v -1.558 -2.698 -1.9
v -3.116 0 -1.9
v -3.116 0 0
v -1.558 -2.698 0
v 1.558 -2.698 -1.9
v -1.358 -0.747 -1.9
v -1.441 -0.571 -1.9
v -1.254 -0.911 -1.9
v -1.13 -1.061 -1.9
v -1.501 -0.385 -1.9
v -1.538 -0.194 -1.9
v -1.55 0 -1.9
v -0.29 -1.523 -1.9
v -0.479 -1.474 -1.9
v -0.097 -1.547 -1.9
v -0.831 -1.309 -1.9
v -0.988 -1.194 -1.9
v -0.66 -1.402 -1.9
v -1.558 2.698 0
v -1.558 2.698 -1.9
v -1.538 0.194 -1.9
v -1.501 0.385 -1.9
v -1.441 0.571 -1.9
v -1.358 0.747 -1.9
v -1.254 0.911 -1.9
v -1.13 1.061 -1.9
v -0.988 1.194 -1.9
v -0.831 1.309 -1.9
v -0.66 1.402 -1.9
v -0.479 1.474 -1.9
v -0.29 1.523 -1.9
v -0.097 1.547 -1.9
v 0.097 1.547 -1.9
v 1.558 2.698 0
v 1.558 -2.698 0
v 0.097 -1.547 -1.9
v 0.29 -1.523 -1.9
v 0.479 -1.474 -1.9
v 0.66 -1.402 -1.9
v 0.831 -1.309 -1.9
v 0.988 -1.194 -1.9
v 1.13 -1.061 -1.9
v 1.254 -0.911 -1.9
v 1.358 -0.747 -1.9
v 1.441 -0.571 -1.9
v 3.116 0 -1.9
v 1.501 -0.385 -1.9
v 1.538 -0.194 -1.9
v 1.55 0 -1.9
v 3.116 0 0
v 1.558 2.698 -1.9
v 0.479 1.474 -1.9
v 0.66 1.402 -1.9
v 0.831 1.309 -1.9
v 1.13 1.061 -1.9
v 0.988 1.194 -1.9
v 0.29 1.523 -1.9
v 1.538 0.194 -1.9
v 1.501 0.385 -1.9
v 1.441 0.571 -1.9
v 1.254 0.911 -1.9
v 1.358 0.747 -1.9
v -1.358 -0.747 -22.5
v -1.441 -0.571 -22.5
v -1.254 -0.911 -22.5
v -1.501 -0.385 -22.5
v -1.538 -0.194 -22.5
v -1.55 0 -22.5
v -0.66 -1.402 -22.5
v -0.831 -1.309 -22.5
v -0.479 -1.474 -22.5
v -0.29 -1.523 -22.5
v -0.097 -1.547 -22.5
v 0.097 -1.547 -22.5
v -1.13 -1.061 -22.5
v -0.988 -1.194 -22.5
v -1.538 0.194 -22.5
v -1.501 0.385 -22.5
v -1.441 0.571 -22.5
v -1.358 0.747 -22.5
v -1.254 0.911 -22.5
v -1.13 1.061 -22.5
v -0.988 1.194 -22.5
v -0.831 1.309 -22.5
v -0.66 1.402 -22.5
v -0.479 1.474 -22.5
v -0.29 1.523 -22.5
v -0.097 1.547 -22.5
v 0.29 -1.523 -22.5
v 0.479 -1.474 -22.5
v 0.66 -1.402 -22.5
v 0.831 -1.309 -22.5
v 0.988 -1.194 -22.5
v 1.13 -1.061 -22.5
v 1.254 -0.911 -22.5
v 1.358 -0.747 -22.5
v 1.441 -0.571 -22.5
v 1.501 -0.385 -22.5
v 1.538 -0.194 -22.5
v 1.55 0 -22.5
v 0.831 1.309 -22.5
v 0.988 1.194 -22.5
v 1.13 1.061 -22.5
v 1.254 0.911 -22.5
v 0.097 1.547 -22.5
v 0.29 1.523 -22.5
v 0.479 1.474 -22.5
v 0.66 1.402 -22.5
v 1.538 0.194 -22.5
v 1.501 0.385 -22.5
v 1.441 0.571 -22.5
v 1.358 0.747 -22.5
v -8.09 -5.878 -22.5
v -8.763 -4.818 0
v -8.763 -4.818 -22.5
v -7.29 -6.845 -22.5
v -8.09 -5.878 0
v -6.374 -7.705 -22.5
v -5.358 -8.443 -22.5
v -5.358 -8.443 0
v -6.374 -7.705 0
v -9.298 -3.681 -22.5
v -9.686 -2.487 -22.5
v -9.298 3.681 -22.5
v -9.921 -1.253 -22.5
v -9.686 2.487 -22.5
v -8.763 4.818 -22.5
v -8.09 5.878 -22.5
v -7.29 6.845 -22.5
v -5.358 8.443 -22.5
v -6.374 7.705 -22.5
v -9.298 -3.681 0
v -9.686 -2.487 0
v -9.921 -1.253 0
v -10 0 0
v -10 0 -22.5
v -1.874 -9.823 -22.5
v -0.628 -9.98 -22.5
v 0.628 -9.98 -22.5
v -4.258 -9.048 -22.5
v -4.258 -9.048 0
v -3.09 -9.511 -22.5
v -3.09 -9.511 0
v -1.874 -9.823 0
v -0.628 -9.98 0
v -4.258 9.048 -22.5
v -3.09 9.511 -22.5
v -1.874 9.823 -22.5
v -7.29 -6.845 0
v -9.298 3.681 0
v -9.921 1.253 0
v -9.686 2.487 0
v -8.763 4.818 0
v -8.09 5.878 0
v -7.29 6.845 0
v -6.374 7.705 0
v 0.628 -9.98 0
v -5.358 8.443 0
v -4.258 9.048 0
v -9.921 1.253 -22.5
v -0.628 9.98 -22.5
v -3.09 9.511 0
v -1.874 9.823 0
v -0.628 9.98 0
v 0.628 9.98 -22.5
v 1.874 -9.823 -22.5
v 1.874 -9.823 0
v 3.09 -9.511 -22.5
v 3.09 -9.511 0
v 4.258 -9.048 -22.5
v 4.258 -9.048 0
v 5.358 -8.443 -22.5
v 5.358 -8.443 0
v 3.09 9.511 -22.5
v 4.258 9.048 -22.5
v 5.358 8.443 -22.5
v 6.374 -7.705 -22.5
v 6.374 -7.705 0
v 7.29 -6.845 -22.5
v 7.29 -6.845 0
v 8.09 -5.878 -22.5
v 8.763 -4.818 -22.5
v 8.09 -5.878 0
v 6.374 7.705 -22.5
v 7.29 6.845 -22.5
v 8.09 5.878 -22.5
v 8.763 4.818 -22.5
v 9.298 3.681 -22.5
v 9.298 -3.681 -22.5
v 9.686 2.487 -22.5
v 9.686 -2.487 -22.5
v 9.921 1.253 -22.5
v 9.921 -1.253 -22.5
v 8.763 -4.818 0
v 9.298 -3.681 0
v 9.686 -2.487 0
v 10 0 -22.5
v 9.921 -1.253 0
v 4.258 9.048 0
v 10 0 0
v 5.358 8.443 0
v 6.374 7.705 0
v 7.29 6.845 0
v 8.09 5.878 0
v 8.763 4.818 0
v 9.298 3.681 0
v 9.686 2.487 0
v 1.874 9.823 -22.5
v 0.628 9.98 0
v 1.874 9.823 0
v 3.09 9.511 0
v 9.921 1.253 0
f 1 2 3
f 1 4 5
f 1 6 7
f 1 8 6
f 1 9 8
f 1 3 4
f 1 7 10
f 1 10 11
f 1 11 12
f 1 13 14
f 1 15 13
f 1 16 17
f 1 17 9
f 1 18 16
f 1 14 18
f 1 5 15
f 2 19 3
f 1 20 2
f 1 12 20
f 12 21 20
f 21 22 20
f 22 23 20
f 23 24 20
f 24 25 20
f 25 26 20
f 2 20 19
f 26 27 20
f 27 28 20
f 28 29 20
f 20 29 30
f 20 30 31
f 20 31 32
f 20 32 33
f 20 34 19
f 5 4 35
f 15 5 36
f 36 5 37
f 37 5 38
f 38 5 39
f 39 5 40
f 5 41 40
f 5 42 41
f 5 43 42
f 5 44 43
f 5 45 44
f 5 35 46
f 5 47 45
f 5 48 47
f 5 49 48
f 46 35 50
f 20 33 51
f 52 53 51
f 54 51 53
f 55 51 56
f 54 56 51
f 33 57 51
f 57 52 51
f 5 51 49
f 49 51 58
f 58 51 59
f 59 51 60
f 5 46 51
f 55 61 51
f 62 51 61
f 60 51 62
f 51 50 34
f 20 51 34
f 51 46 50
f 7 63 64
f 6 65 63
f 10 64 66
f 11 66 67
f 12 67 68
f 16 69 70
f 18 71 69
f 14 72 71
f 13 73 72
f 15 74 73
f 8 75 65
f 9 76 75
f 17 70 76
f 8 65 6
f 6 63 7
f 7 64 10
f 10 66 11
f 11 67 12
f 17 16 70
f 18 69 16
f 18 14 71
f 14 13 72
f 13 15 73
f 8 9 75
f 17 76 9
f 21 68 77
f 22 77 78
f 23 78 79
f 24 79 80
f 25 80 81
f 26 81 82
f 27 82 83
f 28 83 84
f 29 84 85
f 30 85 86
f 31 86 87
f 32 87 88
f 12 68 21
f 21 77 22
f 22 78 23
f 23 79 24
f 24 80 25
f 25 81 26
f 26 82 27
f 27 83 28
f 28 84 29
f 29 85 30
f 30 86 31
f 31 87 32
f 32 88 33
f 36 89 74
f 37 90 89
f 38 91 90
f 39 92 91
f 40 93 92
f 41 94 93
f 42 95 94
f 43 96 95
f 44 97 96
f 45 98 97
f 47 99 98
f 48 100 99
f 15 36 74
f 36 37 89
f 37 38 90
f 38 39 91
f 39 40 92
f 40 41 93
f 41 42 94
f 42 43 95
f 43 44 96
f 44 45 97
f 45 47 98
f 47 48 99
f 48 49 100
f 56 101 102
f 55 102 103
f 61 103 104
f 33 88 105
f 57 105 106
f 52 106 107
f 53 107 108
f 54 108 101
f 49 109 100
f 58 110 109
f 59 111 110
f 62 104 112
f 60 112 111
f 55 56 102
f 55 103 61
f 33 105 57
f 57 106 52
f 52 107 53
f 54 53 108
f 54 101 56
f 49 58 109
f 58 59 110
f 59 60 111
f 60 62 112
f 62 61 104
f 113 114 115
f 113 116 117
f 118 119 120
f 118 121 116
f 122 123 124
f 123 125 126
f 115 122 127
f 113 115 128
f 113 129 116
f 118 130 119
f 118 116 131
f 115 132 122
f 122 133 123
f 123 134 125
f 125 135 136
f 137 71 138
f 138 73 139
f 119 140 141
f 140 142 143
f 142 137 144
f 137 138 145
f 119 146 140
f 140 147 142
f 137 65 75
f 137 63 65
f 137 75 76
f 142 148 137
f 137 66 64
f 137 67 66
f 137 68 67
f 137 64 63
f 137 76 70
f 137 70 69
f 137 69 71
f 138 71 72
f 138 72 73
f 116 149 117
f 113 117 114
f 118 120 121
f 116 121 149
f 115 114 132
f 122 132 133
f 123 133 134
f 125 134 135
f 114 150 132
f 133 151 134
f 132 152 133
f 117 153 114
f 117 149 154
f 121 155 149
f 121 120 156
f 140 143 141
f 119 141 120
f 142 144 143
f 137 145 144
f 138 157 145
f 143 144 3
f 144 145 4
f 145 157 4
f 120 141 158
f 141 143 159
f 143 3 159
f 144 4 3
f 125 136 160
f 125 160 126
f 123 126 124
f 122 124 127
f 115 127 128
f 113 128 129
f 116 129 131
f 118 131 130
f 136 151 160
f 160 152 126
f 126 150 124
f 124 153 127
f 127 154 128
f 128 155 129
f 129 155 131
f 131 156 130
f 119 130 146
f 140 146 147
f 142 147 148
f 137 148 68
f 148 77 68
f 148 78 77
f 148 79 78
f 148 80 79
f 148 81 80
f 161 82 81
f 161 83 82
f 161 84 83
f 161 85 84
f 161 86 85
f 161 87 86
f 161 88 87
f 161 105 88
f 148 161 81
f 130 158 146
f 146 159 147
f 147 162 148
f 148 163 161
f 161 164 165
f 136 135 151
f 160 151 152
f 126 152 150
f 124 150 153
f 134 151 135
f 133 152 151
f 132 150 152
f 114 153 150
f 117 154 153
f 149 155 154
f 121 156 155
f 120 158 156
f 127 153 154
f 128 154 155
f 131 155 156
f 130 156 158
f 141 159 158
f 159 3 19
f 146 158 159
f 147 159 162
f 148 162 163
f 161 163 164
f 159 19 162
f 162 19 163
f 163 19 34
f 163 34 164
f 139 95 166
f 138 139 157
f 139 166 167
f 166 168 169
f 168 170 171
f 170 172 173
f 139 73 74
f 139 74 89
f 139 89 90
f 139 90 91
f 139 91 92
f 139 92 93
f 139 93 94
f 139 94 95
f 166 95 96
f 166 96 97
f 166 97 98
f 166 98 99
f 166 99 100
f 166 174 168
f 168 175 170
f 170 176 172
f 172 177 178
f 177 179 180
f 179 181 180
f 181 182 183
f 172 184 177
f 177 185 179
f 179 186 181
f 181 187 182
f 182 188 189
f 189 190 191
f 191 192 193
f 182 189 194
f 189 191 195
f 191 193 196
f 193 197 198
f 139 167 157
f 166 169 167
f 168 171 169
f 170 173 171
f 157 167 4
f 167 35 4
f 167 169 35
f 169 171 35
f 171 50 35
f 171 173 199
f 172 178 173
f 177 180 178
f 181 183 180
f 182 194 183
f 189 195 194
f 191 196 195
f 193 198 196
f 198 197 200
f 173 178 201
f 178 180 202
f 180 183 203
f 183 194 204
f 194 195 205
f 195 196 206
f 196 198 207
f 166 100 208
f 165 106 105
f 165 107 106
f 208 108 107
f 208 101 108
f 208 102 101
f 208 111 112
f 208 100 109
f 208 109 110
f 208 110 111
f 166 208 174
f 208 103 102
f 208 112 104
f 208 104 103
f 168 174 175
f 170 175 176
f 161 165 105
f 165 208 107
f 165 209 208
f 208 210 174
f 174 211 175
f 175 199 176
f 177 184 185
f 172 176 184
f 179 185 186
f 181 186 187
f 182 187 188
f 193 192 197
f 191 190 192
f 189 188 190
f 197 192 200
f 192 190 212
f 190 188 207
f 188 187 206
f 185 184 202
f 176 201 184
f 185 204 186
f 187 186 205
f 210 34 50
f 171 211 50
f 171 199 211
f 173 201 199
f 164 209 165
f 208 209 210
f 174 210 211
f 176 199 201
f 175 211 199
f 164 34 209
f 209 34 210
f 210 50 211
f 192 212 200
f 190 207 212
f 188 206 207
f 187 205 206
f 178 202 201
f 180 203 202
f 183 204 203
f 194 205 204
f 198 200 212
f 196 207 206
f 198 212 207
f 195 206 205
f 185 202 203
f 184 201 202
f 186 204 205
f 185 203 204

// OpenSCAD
$fn = 50;

difference() {
	union() {
		translate(v = [0, 0, -22.5]) {
			cylinder(h = 22.5, r = 10.0);
		}
	}
	union() {
		translate(v = [0, 0, 0]) {
			rotate(a = [0, 0, 0]) {
				difference() {
					union() {
						translate(v = [0, 0, -1.9]) {
							linear_extrude(height = 1.9) {
								polygon(points = [[3.1158, 0.0], [1.5579000000000005, 2.698361953111554], [-1.5578999999999994, 2.6983619531115544], [-3.1158, 3.815754496783323e-16], [-1.5579000000000014, -2.6983619531115535], [1.557899999999998, -2.6983619531115552]]);
							}
						}
					}
					union();
				}
			}
		}
		#translate(v = [0, 0, -100.0]) {
			cylinder(h = 200, r = 1.55);
		}
	}
}
